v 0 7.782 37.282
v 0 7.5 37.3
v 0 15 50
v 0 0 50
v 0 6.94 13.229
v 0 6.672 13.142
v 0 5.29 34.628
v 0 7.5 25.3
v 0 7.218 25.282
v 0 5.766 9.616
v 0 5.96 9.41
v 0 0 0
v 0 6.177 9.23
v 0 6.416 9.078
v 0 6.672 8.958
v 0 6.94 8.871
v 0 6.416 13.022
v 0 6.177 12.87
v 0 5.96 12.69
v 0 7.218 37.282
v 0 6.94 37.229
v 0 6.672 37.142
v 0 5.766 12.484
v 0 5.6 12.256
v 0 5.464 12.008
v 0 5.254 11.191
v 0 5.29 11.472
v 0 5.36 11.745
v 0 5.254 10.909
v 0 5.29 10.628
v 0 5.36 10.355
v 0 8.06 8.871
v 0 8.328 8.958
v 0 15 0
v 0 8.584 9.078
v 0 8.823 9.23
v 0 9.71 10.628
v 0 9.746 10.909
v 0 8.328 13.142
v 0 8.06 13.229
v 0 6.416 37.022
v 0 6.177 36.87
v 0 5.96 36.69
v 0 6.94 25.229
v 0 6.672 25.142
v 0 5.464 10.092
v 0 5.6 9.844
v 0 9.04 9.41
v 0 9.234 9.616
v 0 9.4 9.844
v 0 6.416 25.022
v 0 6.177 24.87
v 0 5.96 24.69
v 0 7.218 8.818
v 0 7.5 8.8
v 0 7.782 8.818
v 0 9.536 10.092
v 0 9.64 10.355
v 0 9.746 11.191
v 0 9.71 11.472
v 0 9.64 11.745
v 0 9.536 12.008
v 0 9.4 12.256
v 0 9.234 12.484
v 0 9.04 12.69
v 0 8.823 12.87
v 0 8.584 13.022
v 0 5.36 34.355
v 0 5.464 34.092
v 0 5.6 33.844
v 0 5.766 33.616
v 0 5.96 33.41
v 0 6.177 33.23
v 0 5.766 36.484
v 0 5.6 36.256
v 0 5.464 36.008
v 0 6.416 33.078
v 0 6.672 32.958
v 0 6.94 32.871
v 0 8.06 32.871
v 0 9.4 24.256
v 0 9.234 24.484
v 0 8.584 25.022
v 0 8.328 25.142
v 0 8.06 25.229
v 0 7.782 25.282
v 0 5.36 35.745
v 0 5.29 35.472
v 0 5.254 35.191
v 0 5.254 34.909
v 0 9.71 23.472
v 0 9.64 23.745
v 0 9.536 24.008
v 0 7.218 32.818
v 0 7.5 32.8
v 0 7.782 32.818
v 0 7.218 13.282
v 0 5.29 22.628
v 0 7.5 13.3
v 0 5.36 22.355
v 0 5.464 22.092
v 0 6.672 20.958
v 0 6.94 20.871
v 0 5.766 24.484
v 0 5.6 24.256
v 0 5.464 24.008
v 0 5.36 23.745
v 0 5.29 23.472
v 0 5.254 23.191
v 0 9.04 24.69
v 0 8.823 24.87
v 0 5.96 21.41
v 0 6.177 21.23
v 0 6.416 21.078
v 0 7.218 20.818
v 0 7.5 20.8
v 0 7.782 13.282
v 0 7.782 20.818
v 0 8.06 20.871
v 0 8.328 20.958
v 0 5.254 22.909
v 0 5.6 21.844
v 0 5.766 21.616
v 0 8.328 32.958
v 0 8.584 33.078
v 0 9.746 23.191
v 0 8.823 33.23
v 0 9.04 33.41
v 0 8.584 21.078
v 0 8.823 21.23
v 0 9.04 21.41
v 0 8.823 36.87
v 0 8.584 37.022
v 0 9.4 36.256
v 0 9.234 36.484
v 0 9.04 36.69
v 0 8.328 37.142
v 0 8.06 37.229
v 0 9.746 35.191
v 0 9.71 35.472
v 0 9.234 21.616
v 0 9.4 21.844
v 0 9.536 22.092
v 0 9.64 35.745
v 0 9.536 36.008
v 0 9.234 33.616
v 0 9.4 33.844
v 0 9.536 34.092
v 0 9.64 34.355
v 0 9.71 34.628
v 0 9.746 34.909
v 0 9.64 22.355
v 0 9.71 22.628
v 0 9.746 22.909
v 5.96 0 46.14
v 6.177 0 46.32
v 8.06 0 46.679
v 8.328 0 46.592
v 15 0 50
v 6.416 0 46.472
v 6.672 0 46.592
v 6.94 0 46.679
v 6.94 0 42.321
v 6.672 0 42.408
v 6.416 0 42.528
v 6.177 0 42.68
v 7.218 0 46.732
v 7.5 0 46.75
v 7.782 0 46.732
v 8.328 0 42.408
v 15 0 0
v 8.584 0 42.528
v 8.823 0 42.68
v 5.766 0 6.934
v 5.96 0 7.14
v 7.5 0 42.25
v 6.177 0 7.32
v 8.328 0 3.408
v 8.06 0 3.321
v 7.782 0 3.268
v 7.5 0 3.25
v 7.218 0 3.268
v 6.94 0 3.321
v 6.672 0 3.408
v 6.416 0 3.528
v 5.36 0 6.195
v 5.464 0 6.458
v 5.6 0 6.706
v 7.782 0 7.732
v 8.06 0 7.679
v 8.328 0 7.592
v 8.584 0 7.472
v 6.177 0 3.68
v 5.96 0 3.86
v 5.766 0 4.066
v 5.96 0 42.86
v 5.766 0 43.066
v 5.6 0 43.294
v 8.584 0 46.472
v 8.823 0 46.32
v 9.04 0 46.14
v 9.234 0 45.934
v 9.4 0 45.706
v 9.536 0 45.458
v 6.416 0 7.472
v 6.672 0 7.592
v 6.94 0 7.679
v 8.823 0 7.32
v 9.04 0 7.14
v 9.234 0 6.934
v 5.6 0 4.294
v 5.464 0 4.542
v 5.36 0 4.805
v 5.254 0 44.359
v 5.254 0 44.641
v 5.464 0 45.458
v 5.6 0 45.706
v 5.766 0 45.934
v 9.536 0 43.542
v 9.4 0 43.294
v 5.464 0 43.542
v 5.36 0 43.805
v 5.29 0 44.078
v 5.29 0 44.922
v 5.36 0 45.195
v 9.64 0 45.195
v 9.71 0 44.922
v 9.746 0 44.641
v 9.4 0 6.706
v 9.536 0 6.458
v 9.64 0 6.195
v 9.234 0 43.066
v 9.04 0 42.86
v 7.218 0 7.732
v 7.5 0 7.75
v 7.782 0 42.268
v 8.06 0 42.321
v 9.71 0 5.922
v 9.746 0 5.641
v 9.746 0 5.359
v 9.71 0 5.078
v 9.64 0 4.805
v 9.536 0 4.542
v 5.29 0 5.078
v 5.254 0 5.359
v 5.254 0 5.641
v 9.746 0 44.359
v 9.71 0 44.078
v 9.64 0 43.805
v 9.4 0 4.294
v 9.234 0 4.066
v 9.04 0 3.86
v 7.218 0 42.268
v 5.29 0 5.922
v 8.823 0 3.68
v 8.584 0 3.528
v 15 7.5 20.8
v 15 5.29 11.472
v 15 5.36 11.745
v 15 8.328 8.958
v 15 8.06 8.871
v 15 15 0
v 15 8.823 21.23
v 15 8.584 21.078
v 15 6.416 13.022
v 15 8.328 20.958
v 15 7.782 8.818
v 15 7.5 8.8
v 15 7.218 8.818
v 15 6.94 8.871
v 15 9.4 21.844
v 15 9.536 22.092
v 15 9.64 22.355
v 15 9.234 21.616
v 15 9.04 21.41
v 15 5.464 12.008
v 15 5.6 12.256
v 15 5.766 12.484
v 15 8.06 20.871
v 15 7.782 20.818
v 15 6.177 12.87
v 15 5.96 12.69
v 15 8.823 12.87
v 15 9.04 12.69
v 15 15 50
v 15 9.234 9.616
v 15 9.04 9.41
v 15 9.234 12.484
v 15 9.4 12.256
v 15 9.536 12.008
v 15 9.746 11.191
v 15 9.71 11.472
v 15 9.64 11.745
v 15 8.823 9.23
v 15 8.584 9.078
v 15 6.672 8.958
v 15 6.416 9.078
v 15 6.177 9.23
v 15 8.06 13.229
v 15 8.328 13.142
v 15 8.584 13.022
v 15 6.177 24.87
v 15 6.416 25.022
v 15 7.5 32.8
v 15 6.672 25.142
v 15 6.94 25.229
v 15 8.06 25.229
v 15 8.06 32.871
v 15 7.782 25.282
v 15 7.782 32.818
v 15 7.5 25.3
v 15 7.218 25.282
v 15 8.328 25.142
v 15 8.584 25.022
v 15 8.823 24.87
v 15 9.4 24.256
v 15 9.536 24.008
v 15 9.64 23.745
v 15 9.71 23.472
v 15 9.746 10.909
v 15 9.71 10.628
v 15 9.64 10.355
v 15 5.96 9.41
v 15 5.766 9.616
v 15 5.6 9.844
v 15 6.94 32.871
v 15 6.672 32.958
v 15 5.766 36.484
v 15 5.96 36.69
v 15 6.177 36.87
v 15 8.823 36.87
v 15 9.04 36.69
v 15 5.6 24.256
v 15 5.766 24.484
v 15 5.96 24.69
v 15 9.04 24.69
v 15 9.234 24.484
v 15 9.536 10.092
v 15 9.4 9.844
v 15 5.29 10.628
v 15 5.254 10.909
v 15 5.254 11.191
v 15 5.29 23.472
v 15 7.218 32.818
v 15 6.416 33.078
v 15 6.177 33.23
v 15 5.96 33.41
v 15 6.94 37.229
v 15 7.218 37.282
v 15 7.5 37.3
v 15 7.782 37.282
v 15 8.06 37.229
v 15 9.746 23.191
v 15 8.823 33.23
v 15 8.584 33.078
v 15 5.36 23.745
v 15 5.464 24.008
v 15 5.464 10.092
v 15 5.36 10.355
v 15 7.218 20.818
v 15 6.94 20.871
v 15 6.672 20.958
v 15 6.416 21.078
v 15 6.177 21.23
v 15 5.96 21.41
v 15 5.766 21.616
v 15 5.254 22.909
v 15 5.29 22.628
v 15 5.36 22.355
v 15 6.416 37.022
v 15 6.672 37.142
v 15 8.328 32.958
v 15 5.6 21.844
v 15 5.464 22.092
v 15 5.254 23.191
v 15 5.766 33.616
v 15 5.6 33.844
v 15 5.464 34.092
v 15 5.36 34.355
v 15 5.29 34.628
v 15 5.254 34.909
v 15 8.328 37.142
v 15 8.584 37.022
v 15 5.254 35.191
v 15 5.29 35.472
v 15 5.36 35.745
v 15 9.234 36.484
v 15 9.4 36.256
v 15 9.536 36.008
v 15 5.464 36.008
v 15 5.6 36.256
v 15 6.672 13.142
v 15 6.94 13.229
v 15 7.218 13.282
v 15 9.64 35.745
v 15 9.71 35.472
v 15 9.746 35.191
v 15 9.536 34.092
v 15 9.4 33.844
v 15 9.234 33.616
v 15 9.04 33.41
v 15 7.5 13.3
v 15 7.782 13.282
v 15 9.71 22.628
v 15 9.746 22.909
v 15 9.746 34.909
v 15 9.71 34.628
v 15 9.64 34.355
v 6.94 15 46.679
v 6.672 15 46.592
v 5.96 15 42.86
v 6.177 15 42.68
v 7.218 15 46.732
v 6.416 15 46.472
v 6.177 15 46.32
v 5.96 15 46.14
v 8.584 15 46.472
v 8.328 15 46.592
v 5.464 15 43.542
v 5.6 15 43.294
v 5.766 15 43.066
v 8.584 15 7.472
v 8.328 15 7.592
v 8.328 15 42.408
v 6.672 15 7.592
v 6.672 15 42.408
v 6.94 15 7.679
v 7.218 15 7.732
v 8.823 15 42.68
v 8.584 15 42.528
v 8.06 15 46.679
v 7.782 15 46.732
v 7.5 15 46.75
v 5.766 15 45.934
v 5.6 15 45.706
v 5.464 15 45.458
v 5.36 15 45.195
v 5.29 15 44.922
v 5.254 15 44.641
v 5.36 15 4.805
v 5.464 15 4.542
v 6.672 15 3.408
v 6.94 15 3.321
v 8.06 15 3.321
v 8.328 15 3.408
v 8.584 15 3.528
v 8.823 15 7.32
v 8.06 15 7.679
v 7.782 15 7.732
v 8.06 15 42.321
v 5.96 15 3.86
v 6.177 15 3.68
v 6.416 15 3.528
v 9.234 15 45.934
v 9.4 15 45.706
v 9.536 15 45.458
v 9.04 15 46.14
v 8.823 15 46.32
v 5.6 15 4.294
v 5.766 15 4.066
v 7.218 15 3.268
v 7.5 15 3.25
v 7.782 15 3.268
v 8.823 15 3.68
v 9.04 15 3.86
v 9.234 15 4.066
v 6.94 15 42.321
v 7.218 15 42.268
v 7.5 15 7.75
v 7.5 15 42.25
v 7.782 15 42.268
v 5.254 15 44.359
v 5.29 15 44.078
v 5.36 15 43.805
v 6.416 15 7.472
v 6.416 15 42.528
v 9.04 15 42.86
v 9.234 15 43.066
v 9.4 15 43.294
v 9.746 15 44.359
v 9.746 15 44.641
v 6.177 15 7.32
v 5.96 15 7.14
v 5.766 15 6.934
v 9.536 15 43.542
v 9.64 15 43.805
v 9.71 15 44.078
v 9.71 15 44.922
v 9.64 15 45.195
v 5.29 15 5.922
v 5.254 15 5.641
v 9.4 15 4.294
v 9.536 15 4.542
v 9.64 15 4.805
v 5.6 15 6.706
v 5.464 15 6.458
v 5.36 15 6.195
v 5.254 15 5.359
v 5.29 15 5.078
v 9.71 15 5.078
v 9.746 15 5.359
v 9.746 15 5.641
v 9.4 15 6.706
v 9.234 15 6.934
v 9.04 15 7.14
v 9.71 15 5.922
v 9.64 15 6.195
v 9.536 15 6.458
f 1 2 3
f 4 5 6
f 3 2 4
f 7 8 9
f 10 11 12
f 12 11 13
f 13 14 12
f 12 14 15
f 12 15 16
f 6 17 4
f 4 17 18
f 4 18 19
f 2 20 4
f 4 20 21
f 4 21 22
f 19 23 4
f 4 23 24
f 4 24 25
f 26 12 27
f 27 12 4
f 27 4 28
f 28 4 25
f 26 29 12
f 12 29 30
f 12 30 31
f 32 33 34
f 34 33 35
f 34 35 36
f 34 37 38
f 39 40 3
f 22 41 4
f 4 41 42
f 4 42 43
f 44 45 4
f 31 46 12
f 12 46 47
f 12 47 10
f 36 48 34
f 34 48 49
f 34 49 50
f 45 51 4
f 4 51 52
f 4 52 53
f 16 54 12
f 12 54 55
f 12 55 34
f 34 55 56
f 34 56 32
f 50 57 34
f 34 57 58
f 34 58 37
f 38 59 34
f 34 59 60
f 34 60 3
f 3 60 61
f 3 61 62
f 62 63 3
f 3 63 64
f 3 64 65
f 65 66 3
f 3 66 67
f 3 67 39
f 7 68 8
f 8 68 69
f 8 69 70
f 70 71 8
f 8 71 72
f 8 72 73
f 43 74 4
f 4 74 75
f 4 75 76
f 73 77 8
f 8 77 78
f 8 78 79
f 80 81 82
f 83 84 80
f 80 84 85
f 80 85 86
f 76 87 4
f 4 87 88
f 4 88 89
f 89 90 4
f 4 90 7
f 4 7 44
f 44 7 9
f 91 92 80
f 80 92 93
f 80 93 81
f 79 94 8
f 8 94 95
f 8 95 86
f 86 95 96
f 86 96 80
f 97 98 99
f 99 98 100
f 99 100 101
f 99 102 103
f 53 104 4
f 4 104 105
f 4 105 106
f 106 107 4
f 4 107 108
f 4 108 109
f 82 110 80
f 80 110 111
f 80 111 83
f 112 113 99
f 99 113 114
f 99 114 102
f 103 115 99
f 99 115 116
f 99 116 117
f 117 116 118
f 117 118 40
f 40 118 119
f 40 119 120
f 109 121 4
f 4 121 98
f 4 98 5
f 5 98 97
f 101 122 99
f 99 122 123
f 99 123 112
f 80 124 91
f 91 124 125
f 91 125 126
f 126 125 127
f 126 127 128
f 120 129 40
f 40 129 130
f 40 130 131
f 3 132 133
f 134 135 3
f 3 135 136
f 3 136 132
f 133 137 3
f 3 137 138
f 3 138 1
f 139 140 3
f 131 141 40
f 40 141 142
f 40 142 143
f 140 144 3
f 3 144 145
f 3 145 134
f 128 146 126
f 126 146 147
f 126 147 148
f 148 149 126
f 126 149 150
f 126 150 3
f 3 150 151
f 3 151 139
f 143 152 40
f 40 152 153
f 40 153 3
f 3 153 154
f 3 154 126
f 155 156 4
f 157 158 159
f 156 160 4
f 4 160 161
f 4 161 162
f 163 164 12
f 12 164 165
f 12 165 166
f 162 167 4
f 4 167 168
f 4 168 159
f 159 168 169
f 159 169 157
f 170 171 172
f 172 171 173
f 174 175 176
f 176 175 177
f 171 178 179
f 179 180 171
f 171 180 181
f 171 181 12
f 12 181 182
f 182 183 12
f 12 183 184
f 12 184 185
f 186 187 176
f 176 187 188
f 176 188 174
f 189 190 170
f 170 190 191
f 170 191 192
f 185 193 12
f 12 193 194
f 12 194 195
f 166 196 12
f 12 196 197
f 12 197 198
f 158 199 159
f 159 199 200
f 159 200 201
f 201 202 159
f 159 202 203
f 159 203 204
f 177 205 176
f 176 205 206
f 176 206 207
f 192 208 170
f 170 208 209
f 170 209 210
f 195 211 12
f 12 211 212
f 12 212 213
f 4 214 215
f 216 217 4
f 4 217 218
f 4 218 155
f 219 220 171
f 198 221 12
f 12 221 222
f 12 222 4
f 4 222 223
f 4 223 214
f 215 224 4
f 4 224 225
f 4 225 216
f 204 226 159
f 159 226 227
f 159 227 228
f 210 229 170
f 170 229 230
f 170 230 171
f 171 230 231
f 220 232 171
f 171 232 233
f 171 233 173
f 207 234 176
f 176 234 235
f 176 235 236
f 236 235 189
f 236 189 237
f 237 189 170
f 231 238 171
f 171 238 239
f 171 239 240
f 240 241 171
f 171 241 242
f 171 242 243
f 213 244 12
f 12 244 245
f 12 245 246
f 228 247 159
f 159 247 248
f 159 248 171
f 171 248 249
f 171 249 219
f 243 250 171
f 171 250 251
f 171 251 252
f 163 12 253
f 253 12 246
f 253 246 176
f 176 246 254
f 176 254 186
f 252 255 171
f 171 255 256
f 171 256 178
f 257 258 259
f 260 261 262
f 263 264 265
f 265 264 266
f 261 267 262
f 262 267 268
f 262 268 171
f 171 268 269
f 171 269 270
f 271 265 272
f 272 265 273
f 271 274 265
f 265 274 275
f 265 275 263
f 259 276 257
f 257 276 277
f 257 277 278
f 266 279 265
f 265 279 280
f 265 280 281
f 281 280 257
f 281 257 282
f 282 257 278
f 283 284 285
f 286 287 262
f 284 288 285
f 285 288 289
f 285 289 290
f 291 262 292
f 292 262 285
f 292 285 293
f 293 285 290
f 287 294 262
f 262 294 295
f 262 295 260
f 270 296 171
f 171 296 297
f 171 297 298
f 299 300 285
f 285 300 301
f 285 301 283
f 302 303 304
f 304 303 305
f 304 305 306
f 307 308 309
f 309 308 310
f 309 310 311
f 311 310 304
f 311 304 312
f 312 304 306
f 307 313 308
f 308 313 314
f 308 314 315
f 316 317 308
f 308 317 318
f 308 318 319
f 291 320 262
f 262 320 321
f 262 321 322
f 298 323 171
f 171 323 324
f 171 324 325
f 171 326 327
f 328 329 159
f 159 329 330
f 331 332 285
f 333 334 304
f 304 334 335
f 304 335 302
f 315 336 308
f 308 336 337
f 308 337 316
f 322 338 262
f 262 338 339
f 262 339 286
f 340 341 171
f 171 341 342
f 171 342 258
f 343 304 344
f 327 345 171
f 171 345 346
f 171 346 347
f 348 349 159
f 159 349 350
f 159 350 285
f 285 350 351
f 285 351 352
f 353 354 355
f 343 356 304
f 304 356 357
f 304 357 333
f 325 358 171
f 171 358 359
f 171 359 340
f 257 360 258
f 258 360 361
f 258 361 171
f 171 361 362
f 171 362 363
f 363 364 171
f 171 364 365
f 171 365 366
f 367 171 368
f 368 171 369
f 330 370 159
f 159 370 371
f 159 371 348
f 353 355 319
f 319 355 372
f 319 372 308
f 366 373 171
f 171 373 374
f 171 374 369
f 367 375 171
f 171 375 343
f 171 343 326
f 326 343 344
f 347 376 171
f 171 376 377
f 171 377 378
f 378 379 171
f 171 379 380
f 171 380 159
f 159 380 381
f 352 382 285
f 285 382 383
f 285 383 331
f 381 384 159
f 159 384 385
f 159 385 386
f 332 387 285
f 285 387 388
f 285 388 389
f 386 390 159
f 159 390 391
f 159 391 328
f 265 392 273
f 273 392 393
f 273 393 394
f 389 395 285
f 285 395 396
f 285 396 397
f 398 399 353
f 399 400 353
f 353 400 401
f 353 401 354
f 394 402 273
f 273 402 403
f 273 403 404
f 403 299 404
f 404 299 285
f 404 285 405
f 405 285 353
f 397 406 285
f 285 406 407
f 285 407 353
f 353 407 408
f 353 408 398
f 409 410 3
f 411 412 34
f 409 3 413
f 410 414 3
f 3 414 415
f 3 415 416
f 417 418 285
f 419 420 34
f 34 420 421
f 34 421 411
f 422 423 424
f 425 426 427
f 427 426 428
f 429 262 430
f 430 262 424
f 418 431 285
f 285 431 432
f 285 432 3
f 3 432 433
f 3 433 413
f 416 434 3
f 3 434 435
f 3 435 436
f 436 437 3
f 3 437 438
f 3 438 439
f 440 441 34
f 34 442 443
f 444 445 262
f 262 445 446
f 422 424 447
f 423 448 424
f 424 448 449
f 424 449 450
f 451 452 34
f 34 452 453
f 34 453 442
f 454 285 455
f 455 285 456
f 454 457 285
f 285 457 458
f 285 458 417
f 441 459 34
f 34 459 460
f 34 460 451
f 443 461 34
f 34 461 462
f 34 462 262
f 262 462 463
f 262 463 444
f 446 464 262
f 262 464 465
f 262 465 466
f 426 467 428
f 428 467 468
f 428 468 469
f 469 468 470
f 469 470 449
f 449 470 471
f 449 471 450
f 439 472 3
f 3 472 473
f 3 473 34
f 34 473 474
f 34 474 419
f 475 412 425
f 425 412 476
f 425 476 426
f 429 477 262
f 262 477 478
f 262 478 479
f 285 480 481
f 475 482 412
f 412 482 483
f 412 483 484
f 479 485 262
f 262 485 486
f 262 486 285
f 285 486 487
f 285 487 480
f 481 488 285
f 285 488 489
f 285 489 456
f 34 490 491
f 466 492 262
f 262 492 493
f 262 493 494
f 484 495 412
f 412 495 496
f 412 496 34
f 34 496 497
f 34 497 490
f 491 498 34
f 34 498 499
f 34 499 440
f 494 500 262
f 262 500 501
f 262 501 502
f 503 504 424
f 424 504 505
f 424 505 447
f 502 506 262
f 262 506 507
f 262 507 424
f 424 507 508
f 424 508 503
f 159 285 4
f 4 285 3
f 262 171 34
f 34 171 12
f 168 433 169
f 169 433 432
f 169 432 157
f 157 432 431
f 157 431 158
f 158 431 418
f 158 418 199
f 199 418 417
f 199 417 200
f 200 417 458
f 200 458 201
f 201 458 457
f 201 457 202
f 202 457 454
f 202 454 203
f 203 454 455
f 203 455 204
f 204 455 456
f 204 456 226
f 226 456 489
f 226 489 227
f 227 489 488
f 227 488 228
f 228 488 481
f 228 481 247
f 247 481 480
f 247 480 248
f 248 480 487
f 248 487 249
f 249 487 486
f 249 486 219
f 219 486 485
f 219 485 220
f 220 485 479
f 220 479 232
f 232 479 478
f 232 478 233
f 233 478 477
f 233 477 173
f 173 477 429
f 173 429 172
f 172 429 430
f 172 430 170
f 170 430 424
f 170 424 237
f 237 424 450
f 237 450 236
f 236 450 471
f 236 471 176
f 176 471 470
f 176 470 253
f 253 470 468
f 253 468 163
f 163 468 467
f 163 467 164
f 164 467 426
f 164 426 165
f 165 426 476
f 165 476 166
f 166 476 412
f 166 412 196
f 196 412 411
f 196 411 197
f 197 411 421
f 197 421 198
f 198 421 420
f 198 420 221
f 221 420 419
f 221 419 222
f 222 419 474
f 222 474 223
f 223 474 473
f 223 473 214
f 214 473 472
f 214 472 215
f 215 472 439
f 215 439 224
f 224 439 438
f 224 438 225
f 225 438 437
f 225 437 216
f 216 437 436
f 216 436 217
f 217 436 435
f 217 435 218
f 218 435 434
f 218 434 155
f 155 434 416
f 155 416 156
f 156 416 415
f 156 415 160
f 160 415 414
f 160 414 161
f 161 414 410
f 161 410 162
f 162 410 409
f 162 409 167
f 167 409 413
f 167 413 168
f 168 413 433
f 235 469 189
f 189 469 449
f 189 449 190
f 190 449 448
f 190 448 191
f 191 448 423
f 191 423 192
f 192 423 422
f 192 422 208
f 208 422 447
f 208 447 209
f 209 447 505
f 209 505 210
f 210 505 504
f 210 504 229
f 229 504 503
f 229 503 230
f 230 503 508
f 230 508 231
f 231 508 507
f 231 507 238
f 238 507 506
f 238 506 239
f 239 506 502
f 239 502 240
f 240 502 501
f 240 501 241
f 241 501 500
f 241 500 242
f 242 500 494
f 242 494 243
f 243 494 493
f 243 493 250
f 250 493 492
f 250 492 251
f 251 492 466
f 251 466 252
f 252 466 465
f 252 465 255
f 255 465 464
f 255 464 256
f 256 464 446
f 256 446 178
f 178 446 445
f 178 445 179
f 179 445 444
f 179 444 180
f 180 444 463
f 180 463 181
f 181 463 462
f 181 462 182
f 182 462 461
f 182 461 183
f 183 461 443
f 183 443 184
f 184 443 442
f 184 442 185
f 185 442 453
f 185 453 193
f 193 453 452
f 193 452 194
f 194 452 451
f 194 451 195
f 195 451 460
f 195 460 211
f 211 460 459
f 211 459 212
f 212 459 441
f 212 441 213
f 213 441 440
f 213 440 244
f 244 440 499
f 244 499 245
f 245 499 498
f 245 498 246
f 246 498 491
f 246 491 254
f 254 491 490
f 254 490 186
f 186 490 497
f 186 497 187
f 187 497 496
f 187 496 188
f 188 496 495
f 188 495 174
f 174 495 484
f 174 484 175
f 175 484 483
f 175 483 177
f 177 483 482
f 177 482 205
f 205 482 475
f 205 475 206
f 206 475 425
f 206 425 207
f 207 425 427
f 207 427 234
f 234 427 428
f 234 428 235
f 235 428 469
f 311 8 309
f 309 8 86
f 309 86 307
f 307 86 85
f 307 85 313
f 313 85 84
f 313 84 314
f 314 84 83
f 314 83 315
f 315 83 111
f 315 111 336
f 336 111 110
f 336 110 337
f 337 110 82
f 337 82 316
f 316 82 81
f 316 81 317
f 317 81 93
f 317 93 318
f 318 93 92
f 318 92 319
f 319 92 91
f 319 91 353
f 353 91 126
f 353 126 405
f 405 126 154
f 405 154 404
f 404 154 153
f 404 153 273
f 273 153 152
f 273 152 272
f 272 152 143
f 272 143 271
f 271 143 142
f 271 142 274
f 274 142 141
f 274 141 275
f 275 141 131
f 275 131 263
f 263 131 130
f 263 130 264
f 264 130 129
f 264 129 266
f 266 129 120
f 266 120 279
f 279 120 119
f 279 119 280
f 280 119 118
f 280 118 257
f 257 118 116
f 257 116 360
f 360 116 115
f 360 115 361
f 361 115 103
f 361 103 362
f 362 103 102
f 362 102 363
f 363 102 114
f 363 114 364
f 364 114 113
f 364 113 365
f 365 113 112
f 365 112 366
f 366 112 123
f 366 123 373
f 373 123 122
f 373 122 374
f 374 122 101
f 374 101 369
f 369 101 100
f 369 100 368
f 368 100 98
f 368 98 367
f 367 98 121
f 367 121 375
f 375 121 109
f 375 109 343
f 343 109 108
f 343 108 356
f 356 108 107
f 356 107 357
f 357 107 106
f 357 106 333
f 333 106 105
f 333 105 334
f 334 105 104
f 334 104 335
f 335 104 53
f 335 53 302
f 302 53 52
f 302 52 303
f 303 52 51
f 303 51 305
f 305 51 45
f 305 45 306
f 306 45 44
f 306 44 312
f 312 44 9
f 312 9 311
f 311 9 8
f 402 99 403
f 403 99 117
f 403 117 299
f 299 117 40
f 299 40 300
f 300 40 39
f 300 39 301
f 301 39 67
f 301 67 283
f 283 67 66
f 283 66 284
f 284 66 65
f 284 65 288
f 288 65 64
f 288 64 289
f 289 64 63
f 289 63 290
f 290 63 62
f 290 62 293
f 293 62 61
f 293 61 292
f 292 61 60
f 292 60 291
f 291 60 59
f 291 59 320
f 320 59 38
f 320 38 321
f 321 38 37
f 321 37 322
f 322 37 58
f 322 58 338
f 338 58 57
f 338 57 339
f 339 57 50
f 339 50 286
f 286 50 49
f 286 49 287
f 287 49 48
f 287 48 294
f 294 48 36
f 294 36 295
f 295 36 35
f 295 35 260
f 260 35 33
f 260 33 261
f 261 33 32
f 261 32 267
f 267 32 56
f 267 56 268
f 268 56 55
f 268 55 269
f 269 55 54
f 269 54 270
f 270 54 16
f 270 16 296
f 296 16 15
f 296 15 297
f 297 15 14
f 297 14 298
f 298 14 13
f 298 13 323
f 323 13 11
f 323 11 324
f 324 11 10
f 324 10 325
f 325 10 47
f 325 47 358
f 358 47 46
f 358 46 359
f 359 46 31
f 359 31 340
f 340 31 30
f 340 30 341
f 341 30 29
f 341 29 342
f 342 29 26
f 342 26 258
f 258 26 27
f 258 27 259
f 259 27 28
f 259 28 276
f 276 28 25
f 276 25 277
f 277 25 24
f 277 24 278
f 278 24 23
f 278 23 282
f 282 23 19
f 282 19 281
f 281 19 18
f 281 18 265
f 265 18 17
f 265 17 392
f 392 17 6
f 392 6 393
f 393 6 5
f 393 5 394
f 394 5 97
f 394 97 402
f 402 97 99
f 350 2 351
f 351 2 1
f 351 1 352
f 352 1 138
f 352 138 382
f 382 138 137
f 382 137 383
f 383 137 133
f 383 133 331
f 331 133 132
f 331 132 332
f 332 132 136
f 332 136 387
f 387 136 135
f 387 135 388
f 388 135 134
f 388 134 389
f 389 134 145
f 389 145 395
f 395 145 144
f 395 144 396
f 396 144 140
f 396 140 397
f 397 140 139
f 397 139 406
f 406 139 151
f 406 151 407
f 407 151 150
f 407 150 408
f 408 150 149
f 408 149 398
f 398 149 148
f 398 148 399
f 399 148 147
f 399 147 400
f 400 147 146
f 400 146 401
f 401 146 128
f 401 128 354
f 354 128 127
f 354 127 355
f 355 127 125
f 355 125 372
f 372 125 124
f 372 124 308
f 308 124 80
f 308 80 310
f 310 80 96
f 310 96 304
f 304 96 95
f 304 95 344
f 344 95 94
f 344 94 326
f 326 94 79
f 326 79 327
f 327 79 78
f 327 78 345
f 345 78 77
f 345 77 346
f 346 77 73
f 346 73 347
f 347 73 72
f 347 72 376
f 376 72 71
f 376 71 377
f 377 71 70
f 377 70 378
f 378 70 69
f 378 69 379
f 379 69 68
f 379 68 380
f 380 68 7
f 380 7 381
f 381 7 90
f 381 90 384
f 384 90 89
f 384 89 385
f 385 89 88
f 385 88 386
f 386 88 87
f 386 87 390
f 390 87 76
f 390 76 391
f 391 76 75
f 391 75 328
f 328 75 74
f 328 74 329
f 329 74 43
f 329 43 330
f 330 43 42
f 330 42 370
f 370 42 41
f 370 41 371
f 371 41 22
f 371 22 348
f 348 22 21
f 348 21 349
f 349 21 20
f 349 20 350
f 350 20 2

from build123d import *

# Parameters (mm, degrees)
ESQUISSE1_W             = 15
ESQUISSE1_H             = 15
BOSS_EXTRU_1_DEPTH      = 50
ESQUISSE2_R             = 2.25
ENL_V_MAT_EXTRU_1_DEPTH = 55.313902456
ESQUISSE3_R             = 2.25
ENL_V_MAT_EXTRU_2_DEPTH = 55.313902456


with BuildPart() as part:
    # Esquisse1 → Boss.-Extru.1 (new body)
    with BuildSketch(Plane.XY):
        with Locations((7.5, 7.5)):
            Rectangle(ESQUISSE1_W, ESQUISSE1_H)
    extrude(amount=BOSS_EXTRU_1_DEPTH)

    # Esquisse2 → Enlèv. mat.-Extru.1 (cut, through all)
    with BuildSketch(Plane(origin=(0, 15, 0), x_dir=(1, 0, 0), z_dir=(0, 1, 0))):
        with Locations(Location((7.5, -44.5, 0), (0, 0, 270))):
            Circle(ESQUISSE2_R)
        with Locations(Location((7.5, -5.5, 0), (0, 0, 90))):
            Circle(ESQUISSE2_R)
    extrude(amount=-ENL_V_MAT_EXTRU_1_DEPTH, mode=Mode.SUBTRACT)

    # Esquisse3 → Enlèv. mat.-Extru.2 (cut, through all)
    with BuildSketch(Plane.ZY):
        with Locations((23.05, 7.5)):
            Circle(ESQUISSE3_R)
        with Locations((35.05, 7.5)):
            Circle(ESQUISSE3_R)
        with Locations(Location((11.05, 7.5, 0), (0, 0, 180))):
            Circle(ESQUISSE3_R)
    extrude(amount=-ENL_V_MAT_EXTRU_2_DEPTH, mode=Mode.SUBTRACT)


solid = part.part
